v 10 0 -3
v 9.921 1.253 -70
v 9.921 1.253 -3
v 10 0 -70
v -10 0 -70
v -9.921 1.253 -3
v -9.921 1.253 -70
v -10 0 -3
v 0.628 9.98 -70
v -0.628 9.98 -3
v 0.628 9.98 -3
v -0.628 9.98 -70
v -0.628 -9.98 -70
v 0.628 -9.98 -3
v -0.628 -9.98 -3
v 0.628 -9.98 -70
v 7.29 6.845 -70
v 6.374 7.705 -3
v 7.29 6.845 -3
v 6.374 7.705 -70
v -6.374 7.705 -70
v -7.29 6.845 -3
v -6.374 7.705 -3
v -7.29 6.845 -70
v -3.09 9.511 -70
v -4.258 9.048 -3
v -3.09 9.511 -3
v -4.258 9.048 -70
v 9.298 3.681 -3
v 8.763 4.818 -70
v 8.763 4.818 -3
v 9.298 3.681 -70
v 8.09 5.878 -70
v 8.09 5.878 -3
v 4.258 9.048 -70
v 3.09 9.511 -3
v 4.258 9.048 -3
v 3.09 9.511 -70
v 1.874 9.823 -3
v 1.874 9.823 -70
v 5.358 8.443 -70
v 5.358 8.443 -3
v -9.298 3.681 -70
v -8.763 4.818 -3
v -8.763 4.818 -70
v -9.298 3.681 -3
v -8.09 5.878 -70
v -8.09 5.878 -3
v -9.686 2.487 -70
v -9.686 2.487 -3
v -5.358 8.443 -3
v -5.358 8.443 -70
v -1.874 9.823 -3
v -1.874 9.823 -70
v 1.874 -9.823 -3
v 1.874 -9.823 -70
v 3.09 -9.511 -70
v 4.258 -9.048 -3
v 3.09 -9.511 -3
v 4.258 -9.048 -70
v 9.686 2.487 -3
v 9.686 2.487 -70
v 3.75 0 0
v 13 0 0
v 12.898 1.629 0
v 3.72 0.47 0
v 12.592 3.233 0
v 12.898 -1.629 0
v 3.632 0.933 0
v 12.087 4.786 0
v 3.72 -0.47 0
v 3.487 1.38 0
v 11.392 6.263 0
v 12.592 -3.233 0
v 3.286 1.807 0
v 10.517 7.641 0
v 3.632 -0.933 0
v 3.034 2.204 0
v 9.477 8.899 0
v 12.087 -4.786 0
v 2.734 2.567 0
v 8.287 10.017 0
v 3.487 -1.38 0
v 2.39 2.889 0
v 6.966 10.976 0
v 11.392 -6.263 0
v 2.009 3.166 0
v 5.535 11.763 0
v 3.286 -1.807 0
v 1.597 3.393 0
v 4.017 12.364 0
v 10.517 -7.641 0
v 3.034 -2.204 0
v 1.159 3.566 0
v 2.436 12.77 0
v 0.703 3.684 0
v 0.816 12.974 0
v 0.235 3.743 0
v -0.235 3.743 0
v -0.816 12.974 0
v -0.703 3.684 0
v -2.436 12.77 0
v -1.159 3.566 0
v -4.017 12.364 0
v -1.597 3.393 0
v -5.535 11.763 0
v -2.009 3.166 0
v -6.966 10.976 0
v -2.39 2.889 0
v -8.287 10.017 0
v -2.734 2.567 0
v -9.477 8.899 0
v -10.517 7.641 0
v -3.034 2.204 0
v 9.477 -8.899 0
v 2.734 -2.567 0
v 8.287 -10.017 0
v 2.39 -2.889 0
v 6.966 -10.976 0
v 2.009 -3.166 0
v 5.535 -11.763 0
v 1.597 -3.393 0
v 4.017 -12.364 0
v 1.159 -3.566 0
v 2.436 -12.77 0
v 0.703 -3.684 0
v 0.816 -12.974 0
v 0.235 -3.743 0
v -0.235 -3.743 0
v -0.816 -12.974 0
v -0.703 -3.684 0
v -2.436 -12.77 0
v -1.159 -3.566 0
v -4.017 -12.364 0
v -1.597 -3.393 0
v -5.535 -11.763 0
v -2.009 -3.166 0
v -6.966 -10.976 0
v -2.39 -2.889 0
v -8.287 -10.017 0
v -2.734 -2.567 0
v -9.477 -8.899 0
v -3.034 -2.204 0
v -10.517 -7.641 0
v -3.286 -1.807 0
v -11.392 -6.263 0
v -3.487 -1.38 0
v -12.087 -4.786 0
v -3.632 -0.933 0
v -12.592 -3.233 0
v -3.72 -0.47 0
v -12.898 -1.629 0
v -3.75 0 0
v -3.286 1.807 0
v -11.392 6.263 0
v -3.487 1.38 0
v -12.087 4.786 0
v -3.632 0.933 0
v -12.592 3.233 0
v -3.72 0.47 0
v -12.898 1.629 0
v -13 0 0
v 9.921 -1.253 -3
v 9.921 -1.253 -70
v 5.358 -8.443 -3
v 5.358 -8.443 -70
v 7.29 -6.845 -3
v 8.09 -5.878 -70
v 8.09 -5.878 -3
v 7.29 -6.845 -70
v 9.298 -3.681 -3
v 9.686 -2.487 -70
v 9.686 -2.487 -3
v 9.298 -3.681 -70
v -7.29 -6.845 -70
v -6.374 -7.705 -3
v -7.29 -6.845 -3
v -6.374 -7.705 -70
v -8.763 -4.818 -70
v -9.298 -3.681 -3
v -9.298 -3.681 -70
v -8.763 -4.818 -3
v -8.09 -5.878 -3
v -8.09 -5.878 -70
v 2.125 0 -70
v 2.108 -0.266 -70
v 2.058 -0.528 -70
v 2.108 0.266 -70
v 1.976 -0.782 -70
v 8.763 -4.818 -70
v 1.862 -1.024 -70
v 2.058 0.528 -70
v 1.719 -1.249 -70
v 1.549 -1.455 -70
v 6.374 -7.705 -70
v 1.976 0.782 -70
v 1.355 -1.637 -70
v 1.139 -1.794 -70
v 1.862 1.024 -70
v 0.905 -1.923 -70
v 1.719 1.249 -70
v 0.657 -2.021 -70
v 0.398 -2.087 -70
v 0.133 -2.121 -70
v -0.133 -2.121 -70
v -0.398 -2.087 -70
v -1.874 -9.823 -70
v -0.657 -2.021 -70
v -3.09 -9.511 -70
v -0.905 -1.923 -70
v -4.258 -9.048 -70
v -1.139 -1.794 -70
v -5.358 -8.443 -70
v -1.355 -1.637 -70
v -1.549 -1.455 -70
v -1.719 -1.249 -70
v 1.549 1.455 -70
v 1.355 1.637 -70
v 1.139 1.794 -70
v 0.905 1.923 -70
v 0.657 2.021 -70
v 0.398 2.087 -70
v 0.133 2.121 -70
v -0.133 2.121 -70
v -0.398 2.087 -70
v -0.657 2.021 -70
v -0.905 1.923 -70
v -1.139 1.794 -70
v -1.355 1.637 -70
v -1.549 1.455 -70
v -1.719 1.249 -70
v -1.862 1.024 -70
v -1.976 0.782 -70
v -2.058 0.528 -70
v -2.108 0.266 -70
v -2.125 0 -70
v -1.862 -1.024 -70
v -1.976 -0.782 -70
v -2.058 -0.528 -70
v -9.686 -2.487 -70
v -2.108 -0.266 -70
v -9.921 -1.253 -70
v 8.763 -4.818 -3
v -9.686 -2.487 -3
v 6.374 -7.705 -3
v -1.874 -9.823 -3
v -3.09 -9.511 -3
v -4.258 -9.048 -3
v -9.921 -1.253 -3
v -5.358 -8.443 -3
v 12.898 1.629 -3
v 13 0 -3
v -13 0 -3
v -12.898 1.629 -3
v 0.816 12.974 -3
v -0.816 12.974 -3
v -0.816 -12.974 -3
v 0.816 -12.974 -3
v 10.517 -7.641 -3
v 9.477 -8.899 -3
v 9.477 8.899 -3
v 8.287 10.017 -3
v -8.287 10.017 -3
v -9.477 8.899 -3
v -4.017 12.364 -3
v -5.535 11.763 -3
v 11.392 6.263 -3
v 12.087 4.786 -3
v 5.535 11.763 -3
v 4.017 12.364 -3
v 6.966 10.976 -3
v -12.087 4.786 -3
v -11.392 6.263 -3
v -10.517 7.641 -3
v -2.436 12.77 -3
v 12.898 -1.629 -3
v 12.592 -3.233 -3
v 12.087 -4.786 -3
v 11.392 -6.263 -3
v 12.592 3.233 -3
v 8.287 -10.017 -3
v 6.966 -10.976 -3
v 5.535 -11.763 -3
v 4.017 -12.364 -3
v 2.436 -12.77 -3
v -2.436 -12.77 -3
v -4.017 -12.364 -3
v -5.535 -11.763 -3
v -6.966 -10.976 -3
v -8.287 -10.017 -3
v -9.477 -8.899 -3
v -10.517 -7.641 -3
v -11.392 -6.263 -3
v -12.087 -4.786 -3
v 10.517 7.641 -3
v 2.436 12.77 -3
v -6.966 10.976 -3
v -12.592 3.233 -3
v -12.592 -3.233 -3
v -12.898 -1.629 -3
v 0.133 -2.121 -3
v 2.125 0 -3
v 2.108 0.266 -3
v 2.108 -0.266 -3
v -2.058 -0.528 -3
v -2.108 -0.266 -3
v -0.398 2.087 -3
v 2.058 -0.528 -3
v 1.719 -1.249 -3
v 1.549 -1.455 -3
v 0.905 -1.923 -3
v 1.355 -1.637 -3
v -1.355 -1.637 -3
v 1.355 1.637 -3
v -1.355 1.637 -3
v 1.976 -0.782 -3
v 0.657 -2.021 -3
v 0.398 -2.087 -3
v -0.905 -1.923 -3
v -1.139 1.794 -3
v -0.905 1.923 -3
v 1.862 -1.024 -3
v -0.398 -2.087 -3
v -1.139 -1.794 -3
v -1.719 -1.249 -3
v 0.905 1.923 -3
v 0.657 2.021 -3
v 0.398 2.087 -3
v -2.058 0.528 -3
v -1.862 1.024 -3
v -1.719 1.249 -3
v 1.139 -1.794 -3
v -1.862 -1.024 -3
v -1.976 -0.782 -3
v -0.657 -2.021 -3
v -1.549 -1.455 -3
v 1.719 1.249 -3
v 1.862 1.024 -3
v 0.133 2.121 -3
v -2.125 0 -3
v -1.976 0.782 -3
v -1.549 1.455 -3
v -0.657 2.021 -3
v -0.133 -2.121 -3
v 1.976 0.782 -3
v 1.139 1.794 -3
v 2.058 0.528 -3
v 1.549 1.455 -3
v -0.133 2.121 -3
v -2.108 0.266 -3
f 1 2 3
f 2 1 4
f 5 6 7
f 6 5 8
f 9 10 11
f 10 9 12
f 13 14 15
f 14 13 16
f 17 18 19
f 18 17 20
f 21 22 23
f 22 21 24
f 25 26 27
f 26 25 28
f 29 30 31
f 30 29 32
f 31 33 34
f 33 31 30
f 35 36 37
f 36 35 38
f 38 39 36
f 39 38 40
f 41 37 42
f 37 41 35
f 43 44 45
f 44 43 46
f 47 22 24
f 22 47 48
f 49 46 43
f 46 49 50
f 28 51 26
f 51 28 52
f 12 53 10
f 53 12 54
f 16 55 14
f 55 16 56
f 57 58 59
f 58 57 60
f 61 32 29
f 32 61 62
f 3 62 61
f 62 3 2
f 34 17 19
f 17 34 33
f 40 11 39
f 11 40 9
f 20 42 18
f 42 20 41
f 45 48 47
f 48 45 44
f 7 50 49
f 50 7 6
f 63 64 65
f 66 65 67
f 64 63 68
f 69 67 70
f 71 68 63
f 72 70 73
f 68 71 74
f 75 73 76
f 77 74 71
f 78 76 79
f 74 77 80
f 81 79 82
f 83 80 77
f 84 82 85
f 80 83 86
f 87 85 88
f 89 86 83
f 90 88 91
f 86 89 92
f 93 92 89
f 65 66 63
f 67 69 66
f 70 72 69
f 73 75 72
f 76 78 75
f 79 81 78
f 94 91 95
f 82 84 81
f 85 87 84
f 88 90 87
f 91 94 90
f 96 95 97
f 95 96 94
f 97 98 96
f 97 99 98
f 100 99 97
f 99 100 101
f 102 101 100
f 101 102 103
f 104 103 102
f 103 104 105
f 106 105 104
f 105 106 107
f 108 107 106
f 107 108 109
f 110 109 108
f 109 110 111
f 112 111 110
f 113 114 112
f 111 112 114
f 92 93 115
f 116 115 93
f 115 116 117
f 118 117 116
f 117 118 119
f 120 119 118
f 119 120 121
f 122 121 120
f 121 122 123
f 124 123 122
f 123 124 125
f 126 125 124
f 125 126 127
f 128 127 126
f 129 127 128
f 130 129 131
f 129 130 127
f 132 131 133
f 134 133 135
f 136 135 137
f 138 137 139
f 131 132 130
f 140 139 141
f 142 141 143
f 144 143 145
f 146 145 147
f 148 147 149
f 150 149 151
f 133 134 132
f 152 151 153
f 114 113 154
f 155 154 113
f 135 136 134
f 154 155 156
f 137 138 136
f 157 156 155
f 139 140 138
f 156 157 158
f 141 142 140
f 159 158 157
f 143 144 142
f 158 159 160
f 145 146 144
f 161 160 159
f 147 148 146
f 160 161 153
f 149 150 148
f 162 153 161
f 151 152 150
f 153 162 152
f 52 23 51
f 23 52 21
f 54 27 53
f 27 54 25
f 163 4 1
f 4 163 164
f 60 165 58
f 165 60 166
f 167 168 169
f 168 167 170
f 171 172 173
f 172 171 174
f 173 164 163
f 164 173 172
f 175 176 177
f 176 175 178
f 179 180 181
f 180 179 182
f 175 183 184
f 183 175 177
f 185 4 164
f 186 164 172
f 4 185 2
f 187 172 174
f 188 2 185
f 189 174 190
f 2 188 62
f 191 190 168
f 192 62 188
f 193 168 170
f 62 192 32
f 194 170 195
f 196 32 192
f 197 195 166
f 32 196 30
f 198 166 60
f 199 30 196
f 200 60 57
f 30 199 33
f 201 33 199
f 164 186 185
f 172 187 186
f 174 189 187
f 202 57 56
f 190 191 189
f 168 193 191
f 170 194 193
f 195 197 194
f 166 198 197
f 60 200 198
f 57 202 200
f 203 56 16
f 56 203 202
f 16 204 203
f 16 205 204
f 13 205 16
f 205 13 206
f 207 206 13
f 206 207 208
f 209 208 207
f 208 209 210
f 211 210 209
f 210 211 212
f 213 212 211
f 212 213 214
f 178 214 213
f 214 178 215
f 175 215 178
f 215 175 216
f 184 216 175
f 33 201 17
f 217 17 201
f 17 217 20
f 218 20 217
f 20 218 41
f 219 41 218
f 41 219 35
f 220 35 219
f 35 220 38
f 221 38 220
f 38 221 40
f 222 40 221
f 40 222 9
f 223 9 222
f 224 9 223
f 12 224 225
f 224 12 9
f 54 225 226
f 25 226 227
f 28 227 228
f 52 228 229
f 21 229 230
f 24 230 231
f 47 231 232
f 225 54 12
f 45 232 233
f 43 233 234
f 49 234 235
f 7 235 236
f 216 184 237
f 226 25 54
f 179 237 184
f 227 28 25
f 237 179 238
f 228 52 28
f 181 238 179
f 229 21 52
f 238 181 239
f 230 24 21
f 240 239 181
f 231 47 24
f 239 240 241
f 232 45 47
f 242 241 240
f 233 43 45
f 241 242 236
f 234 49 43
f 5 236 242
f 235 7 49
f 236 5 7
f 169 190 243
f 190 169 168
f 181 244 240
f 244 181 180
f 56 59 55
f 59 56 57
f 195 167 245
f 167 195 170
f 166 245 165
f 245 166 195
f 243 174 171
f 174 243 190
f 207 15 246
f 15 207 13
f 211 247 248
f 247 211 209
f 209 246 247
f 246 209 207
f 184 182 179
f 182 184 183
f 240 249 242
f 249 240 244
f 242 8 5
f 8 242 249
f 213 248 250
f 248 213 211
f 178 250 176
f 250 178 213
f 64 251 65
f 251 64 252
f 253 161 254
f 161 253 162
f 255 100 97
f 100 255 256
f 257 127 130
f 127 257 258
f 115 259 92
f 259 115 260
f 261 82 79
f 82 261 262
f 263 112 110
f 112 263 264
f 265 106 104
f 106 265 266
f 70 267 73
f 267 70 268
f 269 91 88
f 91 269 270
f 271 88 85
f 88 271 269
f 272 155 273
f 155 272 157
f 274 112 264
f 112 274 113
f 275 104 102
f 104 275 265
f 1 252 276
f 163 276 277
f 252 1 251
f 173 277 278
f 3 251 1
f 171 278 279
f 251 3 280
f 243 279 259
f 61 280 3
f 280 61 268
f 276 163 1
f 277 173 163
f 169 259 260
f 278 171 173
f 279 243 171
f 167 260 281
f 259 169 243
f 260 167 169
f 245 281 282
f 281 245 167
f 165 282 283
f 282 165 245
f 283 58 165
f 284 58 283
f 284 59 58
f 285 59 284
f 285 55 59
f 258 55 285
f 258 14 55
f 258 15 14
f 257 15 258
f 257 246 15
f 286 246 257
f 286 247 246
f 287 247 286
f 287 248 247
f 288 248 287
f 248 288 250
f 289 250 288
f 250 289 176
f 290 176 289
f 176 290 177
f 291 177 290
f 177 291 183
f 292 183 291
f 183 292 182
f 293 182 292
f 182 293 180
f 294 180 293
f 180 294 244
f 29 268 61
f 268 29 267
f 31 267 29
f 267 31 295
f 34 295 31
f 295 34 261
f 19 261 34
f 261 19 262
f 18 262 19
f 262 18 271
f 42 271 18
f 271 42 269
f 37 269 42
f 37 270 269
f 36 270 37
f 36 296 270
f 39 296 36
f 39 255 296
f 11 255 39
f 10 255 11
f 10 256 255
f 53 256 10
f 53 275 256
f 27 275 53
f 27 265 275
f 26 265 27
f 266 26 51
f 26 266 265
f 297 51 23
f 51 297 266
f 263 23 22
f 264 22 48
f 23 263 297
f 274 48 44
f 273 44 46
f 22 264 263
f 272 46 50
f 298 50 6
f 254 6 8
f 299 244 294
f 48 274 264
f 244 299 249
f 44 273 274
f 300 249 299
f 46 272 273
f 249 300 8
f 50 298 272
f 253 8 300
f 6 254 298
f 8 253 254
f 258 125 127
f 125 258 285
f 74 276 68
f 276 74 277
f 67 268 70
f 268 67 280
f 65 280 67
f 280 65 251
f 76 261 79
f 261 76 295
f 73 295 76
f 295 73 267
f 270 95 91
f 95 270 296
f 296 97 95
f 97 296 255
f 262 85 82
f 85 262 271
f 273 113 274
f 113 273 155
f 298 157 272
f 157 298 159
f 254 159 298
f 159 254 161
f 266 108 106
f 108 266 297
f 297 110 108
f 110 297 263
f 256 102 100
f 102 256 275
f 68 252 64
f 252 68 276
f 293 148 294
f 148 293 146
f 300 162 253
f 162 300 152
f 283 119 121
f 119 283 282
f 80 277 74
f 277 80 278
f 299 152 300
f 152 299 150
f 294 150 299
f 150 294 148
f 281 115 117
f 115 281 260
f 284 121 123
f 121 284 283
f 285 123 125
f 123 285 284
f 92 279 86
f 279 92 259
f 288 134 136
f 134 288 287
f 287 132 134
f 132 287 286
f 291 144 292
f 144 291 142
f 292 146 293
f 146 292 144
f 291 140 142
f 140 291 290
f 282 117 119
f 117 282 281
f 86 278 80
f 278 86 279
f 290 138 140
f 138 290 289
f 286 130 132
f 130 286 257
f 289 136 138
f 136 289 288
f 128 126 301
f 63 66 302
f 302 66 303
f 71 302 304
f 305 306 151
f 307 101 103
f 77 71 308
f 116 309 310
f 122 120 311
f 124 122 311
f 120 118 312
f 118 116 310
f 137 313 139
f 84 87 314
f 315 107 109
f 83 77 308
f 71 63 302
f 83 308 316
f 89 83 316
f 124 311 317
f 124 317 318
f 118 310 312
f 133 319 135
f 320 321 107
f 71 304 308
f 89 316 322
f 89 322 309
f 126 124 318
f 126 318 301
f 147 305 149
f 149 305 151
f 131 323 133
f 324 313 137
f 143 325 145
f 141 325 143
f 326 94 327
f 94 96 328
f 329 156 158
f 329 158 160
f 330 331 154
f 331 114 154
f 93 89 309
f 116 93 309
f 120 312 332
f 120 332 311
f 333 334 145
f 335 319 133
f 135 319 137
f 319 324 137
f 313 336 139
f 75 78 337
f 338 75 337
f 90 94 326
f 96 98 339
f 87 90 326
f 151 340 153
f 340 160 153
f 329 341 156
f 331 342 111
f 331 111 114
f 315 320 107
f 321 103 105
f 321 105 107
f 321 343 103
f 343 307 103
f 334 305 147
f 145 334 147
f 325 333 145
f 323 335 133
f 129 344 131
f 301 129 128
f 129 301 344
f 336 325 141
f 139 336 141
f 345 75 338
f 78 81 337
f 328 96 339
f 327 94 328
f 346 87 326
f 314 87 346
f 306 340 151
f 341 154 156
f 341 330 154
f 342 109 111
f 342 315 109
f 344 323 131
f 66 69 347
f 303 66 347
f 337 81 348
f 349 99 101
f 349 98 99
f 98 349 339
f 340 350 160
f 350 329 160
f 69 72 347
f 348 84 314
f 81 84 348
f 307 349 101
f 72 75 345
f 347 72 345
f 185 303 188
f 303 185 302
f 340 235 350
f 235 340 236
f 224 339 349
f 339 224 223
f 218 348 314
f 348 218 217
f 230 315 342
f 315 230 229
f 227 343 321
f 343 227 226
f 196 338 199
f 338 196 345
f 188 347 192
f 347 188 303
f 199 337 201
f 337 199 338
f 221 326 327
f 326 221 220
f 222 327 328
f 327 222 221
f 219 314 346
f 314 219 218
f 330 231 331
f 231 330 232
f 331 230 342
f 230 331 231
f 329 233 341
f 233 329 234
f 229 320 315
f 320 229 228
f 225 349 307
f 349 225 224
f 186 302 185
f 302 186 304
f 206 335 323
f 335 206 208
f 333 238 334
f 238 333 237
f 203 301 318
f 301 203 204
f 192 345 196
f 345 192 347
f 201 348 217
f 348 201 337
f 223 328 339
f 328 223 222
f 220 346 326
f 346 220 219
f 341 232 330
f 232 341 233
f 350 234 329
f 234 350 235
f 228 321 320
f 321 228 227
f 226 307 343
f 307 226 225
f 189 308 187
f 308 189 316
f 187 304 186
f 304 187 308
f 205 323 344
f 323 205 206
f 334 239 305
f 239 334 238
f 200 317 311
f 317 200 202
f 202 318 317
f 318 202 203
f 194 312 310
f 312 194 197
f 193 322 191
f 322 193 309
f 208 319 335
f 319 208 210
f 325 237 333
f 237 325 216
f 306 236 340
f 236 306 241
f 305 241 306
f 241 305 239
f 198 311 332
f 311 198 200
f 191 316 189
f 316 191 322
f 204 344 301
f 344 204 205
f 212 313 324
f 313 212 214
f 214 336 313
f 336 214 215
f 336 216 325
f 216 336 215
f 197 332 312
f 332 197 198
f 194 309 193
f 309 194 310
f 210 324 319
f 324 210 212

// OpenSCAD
$fn = 50;


difference() {
	union() {
		translate(v = [0, 0, -70.0000000000]) {
			cylinder(h = 70, r = 10.0000000000);
		}
		translate(v = [0, 0, -3.0000000000]) {
			cylinder(h = 3, r = 13.0000000000);
		}
	}
	union() {
		translate(v = [0, 0, 0]) {
			rotate(a = [0, 0, 0]) {
				difference() {
					union() {
						#translate(v = [0, 0, -70.0000000000]) {
							cylinder(h = 70, r = 2.0000000000);
						}
						#translate(v = [0, 0, -3]) {
							cylinder(h = 3, r = 10.0000000000, r1 = 2.1250000000, r2 = 3.7500000000);
						}
						#translate(v = [0, 0, -70.0000000000]) {
							cylinder(h = 70, r = 2.1250000000);
						}
						#translate(v = [0, 0, -70.0000000000]) {
							cylinder(h = 70, r = 2.0000000000);
						}
					}
					union();
				}
			}
		}
	}
}
